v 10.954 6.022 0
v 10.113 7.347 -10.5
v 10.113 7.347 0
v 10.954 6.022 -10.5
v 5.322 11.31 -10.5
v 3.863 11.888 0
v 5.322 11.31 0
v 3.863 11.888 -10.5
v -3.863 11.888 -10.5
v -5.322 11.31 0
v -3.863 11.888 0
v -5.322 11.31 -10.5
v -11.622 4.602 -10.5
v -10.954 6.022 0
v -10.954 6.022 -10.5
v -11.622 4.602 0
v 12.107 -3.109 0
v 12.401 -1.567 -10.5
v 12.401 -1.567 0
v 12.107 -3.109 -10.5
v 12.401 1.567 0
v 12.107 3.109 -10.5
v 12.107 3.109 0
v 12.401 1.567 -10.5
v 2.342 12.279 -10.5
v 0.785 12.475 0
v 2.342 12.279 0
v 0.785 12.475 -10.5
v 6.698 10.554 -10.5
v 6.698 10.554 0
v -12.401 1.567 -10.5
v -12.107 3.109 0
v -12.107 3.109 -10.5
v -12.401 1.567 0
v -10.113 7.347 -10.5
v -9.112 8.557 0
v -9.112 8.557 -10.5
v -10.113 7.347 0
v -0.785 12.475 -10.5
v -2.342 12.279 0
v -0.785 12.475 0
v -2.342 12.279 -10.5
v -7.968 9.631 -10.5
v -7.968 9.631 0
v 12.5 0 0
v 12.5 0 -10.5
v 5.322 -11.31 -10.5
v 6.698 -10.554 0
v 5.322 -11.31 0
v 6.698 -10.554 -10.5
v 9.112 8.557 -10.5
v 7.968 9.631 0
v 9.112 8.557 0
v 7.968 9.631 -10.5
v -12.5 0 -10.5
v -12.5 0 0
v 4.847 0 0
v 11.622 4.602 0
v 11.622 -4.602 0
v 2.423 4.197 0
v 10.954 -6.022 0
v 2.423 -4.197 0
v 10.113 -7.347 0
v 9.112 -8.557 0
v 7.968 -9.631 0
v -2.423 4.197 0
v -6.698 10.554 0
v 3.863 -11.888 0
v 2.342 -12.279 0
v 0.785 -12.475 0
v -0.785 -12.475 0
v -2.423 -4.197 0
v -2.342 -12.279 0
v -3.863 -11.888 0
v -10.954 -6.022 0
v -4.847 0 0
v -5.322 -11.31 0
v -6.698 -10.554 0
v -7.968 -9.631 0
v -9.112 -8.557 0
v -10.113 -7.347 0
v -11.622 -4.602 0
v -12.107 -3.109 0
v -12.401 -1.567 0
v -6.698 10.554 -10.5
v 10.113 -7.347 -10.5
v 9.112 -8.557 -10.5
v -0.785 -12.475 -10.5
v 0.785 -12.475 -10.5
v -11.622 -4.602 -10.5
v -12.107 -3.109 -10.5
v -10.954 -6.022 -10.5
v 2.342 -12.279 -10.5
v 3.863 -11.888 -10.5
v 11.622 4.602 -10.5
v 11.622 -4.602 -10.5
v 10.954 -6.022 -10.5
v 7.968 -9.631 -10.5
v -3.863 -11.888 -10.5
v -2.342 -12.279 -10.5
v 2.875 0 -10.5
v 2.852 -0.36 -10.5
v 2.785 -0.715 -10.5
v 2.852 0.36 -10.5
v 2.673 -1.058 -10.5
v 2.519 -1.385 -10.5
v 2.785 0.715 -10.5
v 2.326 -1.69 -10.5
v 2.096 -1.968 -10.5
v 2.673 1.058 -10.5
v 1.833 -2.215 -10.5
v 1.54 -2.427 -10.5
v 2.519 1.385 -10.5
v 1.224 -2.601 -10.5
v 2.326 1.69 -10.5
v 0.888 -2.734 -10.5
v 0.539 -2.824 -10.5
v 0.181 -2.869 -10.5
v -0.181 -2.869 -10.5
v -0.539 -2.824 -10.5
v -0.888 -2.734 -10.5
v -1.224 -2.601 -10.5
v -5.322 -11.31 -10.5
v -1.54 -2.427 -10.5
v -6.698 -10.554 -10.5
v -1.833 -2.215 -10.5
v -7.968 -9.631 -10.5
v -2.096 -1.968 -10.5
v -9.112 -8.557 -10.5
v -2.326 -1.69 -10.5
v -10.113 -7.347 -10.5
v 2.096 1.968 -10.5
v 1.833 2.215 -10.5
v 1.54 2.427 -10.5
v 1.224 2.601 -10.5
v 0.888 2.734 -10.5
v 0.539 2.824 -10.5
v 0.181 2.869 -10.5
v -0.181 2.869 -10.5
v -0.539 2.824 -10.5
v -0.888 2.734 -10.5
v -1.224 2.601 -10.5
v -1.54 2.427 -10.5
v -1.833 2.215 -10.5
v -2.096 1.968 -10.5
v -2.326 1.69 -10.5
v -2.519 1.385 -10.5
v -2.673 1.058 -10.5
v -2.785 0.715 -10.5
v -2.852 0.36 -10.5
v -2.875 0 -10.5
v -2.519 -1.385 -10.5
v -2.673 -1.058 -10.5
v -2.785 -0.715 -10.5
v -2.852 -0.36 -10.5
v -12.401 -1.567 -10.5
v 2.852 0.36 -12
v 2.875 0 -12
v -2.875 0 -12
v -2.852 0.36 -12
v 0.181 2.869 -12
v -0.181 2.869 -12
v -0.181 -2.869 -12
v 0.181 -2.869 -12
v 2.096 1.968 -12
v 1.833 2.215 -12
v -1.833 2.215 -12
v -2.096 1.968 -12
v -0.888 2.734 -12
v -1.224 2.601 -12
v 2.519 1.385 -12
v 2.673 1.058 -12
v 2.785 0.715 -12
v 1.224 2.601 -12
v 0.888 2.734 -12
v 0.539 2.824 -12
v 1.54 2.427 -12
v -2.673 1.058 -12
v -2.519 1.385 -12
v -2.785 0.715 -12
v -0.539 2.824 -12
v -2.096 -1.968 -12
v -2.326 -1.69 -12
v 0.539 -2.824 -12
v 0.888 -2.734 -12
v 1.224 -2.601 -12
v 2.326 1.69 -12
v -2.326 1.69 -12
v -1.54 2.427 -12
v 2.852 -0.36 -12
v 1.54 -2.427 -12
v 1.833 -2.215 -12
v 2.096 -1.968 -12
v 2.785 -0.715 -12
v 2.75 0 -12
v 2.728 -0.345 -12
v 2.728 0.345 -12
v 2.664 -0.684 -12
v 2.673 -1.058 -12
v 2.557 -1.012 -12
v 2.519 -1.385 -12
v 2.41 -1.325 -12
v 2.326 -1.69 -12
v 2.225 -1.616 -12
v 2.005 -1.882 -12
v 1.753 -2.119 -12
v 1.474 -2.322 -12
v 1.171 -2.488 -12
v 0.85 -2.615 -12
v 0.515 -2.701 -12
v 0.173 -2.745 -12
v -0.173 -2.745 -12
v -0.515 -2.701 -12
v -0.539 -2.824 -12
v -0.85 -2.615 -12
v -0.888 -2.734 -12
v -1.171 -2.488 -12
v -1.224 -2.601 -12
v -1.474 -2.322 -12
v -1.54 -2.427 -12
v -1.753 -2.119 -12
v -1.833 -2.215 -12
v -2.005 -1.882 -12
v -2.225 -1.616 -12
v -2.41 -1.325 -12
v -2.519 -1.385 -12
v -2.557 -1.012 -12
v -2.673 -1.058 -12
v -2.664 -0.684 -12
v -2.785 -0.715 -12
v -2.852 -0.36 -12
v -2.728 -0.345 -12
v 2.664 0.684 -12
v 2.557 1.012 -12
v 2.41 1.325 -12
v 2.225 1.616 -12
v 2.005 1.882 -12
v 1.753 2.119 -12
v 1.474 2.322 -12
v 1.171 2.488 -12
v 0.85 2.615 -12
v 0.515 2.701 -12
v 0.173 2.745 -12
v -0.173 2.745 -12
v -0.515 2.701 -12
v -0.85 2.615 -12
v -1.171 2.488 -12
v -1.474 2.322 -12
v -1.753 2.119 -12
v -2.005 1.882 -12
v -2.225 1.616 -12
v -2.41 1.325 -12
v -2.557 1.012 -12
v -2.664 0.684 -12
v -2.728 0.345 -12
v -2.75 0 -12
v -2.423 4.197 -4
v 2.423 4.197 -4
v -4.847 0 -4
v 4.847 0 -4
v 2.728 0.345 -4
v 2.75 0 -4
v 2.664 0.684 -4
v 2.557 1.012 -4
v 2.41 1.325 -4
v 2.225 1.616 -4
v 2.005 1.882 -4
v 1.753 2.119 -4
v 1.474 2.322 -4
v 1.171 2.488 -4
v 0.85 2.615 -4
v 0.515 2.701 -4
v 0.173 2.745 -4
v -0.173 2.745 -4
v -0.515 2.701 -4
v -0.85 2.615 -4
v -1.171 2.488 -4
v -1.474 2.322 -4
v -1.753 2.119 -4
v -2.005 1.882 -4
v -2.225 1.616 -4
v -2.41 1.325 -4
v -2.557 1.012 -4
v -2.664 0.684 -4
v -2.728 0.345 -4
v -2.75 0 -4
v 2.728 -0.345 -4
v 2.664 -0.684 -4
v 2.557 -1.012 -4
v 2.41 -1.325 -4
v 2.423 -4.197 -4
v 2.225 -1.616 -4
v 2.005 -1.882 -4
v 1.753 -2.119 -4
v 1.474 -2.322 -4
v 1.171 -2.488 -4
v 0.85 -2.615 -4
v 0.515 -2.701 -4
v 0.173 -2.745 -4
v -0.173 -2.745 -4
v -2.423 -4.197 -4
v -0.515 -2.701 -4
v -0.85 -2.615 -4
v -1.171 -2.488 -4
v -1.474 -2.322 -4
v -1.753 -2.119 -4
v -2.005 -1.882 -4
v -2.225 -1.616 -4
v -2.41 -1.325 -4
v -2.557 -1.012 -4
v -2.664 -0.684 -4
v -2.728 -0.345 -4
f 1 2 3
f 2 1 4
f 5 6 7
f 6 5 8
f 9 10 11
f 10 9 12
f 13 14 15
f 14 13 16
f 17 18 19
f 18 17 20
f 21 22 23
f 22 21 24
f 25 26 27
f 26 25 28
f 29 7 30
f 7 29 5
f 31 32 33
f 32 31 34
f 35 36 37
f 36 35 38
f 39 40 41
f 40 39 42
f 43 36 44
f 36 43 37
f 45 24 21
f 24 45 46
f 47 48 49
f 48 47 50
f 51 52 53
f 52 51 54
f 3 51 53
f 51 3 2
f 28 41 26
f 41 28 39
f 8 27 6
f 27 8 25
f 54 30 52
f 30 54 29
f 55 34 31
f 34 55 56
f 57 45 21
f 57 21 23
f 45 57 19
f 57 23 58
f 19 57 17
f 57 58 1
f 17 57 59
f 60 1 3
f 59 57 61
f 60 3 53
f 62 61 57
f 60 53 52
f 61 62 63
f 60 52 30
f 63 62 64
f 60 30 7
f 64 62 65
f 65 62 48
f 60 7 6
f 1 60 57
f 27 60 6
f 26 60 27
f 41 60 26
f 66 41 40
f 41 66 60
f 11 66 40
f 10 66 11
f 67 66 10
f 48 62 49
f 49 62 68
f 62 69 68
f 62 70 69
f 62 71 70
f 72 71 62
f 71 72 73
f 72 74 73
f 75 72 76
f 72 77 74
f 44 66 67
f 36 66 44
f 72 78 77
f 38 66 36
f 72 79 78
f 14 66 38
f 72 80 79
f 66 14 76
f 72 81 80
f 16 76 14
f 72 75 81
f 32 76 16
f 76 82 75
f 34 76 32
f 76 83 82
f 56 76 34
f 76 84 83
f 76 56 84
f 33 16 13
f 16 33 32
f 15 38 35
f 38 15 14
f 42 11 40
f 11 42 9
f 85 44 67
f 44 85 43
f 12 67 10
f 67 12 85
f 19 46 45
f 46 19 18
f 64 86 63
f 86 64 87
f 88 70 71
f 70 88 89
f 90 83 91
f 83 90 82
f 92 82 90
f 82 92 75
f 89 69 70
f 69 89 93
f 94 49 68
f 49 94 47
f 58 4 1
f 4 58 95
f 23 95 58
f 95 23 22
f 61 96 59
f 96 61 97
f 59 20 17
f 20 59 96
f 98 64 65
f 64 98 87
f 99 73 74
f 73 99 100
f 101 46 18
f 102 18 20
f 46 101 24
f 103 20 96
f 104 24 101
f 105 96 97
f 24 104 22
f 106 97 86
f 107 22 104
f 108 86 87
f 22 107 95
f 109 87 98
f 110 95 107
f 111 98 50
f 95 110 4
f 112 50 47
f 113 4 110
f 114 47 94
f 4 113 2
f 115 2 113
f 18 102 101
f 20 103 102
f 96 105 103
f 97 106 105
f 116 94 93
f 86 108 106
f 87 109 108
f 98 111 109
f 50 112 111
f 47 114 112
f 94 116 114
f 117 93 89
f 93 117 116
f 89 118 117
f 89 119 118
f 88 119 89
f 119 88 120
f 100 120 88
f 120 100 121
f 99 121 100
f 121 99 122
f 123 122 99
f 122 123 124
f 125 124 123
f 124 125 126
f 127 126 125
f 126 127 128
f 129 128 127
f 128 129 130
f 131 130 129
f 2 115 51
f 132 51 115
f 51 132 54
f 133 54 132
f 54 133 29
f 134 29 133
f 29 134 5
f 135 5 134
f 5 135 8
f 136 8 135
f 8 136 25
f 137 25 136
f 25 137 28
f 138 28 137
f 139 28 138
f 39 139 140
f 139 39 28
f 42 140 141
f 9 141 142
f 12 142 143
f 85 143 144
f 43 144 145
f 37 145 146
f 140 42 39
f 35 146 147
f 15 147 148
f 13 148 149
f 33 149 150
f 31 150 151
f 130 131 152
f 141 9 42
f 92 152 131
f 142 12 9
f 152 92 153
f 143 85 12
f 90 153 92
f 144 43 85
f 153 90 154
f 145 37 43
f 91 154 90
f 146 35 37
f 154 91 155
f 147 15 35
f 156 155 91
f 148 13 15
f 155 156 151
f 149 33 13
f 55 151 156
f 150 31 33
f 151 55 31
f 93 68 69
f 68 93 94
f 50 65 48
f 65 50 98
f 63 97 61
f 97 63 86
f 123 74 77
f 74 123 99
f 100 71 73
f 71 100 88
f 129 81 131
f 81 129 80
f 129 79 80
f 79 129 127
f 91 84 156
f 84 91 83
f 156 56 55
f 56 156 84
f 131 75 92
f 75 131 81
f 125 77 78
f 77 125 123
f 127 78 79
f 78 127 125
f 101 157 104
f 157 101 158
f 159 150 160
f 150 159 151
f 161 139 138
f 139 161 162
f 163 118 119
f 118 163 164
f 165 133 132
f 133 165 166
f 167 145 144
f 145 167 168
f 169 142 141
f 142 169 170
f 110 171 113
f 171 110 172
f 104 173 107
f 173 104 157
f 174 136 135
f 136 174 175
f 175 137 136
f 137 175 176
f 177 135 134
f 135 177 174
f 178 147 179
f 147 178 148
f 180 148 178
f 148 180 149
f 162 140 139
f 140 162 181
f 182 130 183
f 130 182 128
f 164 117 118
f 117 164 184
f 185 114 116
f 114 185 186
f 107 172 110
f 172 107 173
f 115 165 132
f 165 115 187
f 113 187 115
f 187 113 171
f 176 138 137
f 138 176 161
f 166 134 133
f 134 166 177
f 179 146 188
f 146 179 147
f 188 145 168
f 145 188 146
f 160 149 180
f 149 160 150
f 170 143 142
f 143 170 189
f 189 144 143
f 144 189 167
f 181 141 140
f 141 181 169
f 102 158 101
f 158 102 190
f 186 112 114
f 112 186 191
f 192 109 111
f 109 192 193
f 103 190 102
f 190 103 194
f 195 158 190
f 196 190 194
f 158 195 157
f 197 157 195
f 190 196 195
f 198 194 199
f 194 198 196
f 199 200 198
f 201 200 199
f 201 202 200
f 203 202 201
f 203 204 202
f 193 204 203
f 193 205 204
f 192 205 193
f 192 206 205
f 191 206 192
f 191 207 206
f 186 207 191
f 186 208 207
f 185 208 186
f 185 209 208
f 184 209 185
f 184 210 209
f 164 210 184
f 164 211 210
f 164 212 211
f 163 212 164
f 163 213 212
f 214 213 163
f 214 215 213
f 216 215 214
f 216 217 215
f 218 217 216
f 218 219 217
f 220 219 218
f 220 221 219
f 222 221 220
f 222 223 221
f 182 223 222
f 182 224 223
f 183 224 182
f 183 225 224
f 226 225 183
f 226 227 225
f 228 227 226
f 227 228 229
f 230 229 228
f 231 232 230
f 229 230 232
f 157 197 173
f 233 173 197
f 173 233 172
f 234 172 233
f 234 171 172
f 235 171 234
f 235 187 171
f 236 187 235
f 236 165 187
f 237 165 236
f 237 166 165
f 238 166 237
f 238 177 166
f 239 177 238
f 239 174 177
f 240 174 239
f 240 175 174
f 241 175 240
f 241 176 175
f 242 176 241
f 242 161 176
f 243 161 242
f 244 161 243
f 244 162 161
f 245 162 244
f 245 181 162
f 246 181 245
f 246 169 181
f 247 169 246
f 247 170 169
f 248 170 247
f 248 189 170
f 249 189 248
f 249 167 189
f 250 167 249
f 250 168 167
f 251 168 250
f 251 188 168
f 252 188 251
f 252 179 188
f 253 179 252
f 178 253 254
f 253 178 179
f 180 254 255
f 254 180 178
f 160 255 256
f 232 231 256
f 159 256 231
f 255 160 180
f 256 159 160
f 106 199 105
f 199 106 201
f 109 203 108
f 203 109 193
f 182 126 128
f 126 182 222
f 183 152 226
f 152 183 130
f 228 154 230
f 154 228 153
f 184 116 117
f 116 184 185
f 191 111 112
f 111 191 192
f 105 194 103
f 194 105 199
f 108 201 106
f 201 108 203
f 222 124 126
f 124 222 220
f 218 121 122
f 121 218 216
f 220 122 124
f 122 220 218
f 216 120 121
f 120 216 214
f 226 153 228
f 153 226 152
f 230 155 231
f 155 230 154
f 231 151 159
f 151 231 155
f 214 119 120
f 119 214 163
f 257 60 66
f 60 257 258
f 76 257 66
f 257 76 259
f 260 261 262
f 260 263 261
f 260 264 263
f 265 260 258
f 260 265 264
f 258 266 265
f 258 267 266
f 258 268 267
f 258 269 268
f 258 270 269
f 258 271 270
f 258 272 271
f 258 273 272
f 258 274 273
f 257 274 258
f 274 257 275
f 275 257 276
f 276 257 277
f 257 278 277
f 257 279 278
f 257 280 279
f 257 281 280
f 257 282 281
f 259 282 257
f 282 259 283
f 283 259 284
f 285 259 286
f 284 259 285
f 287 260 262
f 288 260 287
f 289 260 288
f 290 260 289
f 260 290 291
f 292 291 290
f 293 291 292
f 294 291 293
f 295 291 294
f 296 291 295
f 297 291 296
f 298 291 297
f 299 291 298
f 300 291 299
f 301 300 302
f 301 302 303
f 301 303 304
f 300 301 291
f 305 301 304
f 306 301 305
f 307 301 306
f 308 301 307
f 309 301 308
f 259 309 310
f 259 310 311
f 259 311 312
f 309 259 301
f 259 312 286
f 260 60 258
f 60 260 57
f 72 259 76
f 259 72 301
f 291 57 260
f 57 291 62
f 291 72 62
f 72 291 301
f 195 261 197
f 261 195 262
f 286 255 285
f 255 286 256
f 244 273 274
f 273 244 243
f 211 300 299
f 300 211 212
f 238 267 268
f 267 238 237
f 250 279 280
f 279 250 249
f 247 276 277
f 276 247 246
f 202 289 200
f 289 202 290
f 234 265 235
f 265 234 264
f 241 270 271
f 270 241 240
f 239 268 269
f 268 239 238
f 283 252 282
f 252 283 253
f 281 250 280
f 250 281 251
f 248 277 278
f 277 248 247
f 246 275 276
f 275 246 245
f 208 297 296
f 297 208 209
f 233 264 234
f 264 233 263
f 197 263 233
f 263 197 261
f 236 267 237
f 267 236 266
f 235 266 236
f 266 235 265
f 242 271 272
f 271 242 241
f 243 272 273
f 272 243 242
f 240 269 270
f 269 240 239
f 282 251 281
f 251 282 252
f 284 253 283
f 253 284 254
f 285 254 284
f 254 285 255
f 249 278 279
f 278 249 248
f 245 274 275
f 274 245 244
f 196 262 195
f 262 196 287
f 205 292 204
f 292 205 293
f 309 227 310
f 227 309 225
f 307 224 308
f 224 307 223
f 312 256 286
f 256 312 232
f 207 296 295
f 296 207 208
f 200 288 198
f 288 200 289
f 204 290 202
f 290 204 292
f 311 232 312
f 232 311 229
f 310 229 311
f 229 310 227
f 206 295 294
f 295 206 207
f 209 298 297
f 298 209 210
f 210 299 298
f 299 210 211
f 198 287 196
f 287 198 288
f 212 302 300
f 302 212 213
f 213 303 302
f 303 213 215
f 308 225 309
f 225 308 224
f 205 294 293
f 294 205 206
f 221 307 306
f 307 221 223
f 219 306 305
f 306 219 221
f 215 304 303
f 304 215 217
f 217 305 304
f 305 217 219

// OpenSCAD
$fn = 50;

difference() {
	union() {
		translate(v = [0, 0, -10.5]) {
			cylinder(h = 10.5, r = 12.5);
		}
		#translate(v = [0, 0, -12.0]) {
			cylinder(h = 12, r = 2.875);
		}
	}
	union() {
		translate(v = [0, 0, 0]) {
			rotate(a = [0, 0, 0]) {
				difference() {
					union() {
						translate(v = [0, 0, -4]) {
							linear_extrude(height = 4) {
								polygon(points = [[4.8468, 0.0], [2.4234000000000004, 4.197451927062417], [-2.423399999999999, 4.197451927062417], [-4.8468, 5.935618106107392e-16], [-2.423400000000002, -4.197451927062416], [2.423399999999997, -4.197451927062419]]);
							}
						}
					}
					union();
				}
			}
		}
		#translate(v = [0, 0, -100.0]) {
			cylinder(h = 200, r = 2.75);
		}
	}
}
